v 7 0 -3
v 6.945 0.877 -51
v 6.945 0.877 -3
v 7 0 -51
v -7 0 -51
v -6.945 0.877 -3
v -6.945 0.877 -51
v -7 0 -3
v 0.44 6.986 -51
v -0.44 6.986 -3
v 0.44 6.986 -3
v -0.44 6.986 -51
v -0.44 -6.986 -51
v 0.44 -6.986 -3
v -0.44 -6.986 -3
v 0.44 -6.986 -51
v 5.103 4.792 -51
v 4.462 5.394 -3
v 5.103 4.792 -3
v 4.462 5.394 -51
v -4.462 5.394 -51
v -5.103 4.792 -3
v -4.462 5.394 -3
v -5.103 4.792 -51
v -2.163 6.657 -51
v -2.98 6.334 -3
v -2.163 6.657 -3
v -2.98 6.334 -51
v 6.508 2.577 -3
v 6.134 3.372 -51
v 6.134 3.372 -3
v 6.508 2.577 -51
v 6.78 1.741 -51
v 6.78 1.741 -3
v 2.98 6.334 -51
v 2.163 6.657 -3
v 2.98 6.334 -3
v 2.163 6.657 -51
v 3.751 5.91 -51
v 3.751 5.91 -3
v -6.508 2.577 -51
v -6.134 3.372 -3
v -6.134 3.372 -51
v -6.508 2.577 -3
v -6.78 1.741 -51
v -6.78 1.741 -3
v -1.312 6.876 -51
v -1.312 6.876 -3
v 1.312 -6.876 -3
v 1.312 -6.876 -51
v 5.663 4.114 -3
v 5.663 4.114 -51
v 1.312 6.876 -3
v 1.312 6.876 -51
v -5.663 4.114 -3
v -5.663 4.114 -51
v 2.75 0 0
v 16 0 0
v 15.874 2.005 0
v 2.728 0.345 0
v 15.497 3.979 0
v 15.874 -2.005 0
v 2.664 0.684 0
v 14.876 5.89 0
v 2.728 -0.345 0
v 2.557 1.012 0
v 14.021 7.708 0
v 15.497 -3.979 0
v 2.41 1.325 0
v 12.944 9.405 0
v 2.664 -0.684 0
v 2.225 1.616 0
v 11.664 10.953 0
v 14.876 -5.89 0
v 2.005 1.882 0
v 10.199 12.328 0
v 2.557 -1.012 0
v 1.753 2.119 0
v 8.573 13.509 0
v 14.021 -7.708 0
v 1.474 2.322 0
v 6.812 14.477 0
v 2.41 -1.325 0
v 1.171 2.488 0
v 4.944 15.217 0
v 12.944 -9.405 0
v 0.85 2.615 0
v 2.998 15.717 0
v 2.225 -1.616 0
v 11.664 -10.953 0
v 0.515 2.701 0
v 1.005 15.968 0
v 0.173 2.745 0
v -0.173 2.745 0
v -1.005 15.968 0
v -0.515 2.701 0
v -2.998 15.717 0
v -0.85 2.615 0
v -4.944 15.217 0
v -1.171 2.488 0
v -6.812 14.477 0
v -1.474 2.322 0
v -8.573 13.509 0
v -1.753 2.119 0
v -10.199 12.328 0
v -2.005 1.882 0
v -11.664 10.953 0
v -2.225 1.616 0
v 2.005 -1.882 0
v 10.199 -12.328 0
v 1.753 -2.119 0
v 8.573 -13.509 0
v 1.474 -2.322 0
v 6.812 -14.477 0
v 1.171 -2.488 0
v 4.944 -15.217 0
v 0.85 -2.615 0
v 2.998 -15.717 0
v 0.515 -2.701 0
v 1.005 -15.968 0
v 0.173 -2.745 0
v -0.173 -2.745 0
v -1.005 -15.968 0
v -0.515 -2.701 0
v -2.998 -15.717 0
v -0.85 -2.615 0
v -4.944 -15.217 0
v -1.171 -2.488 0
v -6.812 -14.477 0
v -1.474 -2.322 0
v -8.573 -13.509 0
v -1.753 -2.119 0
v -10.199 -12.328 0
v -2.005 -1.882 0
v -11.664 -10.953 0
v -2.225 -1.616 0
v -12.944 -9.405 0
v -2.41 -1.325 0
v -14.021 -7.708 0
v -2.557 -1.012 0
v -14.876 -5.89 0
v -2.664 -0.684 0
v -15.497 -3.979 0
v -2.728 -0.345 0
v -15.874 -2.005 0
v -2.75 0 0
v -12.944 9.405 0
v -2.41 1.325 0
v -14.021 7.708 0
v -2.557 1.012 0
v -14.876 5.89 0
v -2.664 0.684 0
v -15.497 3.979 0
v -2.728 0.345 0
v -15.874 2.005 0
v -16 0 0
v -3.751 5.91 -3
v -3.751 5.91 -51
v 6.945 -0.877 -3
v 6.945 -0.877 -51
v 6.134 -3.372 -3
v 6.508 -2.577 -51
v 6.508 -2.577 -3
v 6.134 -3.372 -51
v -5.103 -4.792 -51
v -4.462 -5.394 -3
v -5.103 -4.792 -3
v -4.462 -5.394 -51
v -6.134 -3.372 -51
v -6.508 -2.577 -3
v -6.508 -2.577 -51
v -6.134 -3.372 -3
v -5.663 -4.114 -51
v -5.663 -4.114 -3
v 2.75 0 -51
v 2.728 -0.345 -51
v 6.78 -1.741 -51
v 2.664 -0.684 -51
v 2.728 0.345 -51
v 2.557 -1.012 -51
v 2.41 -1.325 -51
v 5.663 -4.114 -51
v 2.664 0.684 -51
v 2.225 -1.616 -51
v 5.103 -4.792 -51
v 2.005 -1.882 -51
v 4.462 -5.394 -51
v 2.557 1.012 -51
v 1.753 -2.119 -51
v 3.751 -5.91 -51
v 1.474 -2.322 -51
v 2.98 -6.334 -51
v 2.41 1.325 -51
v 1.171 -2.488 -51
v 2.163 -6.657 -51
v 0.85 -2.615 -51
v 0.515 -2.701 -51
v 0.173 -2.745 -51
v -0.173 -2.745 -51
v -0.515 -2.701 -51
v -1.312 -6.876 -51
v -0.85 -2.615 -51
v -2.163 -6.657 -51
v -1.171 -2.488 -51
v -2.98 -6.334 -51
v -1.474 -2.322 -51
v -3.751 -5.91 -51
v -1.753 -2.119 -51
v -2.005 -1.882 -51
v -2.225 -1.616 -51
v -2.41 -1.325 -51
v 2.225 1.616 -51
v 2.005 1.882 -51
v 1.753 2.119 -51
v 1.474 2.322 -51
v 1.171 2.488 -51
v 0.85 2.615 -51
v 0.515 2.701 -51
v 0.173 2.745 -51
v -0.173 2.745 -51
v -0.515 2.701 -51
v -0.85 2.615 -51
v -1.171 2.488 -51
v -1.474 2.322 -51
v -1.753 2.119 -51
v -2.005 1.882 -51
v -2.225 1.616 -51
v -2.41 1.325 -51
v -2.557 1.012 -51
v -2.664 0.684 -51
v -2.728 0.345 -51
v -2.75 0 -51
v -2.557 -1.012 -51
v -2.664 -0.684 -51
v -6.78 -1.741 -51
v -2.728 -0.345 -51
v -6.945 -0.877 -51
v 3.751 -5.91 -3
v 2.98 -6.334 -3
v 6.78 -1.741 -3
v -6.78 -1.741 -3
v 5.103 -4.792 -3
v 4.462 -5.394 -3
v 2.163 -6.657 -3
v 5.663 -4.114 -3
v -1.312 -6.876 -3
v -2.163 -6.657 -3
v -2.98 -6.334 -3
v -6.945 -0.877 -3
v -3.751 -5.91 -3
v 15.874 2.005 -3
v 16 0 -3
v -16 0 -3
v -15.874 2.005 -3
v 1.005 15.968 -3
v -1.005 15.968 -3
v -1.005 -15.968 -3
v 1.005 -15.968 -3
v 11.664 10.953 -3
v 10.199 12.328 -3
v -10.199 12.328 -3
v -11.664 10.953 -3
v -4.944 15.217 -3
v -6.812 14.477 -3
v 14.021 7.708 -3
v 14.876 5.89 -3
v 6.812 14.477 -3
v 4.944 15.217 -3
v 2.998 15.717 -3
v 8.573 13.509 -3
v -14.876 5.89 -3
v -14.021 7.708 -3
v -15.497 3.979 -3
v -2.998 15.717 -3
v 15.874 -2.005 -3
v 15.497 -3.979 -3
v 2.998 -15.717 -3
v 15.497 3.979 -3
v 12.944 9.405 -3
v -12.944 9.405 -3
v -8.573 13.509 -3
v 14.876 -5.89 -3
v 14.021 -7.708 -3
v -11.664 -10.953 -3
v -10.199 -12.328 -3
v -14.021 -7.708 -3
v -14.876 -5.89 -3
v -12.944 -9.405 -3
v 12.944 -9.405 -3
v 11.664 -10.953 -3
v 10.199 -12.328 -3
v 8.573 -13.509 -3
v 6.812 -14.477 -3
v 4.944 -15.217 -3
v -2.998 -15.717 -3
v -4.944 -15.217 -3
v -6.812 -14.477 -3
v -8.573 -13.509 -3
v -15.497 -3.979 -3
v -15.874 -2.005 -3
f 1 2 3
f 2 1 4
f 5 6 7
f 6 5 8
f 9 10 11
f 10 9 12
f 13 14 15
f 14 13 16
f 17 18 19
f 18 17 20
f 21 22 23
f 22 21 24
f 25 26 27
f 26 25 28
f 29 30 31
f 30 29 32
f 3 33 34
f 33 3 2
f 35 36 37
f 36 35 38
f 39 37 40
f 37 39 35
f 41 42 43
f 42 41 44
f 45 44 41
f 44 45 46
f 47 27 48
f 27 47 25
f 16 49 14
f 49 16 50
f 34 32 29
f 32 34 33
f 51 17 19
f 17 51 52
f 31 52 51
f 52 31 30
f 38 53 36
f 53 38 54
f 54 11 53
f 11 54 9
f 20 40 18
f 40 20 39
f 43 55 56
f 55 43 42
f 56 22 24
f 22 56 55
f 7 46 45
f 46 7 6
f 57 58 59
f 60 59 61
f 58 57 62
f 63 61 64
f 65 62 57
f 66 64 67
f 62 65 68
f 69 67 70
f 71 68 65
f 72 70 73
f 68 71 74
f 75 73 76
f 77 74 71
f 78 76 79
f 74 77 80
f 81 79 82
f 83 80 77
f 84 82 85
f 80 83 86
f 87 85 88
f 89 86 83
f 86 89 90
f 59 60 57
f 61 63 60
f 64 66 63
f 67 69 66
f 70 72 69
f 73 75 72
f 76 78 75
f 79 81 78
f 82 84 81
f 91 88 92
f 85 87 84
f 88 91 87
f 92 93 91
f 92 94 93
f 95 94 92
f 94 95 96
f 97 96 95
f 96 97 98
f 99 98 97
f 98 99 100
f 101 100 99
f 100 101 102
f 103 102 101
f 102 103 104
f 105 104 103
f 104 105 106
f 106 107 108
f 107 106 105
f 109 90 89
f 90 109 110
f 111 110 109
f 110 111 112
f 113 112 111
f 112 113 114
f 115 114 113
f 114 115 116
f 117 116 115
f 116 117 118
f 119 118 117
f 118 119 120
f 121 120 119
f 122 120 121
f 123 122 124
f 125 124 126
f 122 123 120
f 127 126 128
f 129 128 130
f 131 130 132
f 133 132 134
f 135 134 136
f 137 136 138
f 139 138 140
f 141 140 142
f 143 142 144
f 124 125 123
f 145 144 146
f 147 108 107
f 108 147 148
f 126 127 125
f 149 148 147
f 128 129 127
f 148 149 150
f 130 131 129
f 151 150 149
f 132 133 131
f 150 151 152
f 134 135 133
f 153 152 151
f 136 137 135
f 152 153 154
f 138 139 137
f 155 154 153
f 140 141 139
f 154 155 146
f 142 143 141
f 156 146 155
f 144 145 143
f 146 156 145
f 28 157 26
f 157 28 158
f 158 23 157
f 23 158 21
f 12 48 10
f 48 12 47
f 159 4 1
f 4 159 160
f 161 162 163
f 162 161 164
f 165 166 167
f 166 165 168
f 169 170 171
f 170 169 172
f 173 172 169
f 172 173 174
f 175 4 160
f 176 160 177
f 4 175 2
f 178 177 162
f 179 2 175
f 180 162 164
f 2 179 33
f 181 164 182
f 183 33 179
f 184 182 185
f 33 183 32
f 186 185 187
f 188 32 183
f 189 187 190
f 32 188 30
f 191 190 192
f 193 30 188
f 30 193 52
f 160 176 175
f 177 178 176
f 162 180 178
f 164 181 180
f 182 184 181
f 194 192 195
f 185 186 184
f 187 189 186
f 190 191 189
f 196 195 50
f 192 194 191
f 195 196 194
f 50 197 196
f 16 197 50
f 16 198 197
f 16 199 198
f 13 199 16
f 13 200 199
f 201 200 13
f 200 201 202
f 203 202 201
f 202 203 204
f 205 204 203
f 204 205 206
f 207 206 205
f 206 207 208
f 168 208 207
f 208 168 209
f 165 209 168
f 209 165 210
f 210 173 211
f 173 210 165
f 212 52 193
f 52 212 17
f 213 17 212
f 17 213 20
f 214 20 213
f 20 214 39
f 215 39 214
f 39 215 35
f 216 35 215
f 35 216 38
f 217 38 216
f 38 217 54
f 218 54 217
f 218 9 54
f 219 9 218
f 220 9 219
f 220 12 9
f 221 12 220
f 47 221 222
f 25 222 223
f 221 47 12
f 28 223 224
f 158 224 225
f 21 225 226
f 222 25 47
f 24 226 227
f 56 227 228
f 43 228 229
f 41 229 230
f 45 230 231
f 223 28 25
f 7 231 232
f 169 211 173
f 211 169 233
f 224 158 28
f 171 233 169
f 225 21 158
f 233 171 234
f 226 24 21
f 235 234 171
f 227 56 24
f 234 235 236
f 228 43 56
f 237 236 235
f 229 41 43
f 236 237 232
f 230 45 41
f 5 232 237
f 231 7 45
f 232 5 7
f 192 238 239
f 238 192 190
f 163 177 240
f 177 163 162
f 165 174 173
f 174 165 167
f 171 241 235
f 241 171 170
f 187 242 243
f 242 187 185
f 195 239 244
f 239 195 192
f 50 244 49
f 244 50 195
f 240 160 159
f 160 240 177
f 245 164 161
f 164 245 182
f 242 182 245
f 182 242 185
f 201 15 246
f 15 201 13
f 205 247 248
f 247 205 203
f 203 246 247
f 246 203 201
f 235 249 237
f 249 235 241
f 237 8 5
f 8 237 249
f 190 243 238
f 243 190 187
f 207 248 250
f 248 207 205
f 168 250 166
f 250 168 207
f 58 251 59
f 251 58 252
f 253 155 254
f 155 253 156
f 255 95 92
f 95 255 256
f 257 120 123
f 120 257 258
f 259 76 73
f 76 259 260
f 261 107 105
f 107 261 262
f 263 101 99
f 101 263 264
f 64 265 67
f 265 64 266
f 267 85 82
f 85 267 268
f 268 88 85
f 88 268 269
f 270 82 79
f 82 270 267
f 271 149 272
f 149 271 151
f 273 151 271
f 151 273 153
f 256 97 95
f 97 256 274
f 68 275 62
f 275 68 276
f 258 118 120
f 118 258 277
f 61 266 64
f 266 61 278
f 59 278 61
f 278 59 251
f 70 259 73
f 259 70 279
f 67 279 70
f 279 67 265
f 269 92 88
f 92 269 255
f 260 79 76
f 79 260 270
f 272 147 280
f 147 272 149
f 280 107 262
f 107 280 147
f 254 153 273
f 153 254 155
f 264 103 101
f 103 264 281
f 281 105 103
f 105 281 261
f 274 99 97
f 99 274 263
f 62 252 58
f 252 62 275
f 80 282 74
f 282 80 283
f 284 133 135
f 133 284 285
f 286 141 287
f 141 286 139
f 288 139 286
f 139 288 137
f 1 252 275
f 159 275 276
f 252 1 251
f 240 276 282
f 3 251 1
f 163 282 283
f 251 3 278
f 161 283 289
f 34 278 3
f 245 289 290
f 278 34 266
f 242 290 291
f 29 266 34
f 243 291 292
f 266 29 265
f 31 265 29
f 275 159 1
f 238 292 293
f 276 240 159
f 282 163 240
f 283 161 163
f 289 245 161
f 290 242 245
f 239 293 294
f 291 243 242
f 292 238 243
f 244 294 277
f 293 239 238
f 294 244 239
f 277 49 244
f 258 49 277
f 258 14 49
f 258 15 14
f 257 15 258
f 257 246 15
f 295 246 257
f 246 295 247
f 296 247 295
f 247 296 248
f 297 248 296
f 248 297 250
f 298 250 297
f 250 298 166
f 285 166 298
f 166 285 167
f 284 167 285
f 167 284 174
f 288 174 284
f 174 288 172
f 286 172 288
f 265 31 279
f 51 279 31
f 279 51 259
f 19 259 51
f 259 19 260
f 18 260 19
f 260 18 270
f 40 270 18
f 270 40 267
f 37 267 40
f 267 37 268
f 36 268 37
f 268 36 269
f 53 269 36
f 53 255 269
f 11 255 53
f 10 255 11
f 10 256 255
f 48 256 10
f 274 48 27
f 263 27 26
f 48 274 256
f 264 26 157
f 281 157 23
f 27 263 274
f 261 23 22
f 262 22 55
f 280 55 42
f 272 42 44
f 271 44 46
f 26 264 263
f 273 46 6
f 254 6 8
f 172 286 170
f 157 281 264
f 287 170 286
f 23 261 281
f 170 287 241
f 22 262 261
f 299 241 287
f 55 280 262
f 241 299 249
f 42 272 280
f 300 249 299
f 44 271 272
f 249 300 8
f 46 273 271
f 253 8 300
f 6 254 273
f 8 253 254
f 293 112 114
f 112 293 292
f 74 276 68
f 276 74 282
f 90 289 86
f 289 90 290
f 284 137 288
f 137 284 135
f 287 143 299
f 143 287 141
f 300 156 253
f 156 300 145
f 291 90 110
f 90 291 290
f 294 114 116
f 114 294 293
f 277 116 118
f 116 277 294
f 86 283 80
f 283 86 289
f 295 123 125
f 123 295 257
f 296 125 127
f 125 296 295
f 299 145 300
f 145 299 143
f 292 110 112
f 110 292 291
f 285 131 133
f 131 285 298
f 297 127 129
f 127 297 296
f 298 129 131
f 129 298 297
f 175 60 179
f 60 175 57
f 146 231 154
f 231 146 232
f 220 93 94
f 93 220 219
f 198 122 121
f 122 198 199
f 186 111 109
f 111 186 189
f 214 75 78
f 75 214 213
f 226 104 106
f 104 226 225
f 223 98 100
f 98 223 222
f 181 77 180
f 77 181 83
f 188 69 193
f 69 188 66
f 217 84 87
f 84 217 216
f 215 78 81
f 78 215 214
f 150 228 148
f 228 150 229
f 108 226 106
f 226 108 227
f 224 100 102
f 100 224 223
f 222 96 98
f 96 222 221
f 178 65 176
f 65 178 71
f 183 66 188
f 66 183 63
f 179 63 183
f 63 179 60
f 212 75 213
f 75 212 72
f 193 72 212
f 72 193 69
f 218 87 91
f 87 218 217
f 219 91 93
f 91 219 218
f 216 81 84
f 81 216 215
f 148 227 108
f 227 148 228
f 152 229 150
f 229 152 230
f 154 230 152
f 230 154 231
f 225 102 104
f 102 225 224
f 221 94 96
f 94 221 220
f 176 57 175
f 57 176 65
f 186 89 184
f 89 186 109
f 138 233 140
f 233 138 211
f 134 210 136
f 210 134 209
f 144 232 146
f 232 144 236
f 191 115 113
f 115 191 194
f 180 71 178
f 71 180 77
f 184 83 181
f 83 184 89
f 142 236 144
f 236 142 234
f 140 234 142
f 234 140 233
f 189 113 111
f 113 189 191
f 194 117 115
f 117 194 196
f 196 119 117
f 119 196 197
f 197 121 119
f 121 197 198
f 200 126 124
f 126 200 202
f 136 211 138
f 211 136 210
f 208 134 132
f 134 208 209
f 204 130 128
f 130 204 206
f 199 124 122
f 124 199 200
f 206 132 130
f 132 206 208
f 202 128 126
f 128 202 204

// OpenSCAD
$fn = 50;


difference() {
	union() {
		translate(v = [0, 0, -51.0000000000]) {
			cylinder(h = 51, r = 7.0000000000);
		}
		translate(v = [0, 0, -3.0000000000]) {
			cylinder(h = 3, r = 16.0000000000);
		}
	}
	union() {
		#translate(v = [0, 0, -51]) {
			cylinder(h = 51, r = 2.7500000000);
		}
	}
}
